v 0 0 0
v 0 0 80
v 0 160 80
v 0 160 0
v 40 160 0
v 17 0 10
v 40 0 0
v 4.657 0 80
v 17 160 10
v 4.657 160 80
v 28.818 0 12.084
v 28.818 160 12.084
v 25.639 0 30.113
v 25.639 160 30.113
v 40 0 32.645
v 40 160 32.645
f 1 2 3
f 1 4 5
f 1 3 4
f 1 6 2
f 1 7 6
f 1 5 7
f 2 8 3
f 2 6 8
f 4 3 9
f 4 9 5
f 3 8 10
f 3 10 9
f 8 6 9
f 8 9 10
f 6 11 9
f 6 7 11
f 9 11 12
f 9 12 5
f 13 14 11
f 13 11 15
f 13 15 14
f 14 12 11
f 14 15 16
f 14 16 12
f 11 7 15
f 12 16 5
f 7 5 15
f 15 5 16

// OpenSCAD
// mac mini monitorstand
// Sebastian Weigl
// 14.11.2025
// v03 --w/o insets

difference(){
// main form
cube([40,160,80]);
// monitor slot
translate([17,0,10])
rotate([0,-10,0])
cube([12,160,225]);
// front
translate([25,0,30])
rotate([0,-10,0])
#cube([26,160,90]);
}

//
//  holls for insets
//
//  translate([20,50,0])
//  #cylinder(d=27,h=60,true);
//  translate([20,100,0])
//  #cylinder(d=27,h=60,true);
